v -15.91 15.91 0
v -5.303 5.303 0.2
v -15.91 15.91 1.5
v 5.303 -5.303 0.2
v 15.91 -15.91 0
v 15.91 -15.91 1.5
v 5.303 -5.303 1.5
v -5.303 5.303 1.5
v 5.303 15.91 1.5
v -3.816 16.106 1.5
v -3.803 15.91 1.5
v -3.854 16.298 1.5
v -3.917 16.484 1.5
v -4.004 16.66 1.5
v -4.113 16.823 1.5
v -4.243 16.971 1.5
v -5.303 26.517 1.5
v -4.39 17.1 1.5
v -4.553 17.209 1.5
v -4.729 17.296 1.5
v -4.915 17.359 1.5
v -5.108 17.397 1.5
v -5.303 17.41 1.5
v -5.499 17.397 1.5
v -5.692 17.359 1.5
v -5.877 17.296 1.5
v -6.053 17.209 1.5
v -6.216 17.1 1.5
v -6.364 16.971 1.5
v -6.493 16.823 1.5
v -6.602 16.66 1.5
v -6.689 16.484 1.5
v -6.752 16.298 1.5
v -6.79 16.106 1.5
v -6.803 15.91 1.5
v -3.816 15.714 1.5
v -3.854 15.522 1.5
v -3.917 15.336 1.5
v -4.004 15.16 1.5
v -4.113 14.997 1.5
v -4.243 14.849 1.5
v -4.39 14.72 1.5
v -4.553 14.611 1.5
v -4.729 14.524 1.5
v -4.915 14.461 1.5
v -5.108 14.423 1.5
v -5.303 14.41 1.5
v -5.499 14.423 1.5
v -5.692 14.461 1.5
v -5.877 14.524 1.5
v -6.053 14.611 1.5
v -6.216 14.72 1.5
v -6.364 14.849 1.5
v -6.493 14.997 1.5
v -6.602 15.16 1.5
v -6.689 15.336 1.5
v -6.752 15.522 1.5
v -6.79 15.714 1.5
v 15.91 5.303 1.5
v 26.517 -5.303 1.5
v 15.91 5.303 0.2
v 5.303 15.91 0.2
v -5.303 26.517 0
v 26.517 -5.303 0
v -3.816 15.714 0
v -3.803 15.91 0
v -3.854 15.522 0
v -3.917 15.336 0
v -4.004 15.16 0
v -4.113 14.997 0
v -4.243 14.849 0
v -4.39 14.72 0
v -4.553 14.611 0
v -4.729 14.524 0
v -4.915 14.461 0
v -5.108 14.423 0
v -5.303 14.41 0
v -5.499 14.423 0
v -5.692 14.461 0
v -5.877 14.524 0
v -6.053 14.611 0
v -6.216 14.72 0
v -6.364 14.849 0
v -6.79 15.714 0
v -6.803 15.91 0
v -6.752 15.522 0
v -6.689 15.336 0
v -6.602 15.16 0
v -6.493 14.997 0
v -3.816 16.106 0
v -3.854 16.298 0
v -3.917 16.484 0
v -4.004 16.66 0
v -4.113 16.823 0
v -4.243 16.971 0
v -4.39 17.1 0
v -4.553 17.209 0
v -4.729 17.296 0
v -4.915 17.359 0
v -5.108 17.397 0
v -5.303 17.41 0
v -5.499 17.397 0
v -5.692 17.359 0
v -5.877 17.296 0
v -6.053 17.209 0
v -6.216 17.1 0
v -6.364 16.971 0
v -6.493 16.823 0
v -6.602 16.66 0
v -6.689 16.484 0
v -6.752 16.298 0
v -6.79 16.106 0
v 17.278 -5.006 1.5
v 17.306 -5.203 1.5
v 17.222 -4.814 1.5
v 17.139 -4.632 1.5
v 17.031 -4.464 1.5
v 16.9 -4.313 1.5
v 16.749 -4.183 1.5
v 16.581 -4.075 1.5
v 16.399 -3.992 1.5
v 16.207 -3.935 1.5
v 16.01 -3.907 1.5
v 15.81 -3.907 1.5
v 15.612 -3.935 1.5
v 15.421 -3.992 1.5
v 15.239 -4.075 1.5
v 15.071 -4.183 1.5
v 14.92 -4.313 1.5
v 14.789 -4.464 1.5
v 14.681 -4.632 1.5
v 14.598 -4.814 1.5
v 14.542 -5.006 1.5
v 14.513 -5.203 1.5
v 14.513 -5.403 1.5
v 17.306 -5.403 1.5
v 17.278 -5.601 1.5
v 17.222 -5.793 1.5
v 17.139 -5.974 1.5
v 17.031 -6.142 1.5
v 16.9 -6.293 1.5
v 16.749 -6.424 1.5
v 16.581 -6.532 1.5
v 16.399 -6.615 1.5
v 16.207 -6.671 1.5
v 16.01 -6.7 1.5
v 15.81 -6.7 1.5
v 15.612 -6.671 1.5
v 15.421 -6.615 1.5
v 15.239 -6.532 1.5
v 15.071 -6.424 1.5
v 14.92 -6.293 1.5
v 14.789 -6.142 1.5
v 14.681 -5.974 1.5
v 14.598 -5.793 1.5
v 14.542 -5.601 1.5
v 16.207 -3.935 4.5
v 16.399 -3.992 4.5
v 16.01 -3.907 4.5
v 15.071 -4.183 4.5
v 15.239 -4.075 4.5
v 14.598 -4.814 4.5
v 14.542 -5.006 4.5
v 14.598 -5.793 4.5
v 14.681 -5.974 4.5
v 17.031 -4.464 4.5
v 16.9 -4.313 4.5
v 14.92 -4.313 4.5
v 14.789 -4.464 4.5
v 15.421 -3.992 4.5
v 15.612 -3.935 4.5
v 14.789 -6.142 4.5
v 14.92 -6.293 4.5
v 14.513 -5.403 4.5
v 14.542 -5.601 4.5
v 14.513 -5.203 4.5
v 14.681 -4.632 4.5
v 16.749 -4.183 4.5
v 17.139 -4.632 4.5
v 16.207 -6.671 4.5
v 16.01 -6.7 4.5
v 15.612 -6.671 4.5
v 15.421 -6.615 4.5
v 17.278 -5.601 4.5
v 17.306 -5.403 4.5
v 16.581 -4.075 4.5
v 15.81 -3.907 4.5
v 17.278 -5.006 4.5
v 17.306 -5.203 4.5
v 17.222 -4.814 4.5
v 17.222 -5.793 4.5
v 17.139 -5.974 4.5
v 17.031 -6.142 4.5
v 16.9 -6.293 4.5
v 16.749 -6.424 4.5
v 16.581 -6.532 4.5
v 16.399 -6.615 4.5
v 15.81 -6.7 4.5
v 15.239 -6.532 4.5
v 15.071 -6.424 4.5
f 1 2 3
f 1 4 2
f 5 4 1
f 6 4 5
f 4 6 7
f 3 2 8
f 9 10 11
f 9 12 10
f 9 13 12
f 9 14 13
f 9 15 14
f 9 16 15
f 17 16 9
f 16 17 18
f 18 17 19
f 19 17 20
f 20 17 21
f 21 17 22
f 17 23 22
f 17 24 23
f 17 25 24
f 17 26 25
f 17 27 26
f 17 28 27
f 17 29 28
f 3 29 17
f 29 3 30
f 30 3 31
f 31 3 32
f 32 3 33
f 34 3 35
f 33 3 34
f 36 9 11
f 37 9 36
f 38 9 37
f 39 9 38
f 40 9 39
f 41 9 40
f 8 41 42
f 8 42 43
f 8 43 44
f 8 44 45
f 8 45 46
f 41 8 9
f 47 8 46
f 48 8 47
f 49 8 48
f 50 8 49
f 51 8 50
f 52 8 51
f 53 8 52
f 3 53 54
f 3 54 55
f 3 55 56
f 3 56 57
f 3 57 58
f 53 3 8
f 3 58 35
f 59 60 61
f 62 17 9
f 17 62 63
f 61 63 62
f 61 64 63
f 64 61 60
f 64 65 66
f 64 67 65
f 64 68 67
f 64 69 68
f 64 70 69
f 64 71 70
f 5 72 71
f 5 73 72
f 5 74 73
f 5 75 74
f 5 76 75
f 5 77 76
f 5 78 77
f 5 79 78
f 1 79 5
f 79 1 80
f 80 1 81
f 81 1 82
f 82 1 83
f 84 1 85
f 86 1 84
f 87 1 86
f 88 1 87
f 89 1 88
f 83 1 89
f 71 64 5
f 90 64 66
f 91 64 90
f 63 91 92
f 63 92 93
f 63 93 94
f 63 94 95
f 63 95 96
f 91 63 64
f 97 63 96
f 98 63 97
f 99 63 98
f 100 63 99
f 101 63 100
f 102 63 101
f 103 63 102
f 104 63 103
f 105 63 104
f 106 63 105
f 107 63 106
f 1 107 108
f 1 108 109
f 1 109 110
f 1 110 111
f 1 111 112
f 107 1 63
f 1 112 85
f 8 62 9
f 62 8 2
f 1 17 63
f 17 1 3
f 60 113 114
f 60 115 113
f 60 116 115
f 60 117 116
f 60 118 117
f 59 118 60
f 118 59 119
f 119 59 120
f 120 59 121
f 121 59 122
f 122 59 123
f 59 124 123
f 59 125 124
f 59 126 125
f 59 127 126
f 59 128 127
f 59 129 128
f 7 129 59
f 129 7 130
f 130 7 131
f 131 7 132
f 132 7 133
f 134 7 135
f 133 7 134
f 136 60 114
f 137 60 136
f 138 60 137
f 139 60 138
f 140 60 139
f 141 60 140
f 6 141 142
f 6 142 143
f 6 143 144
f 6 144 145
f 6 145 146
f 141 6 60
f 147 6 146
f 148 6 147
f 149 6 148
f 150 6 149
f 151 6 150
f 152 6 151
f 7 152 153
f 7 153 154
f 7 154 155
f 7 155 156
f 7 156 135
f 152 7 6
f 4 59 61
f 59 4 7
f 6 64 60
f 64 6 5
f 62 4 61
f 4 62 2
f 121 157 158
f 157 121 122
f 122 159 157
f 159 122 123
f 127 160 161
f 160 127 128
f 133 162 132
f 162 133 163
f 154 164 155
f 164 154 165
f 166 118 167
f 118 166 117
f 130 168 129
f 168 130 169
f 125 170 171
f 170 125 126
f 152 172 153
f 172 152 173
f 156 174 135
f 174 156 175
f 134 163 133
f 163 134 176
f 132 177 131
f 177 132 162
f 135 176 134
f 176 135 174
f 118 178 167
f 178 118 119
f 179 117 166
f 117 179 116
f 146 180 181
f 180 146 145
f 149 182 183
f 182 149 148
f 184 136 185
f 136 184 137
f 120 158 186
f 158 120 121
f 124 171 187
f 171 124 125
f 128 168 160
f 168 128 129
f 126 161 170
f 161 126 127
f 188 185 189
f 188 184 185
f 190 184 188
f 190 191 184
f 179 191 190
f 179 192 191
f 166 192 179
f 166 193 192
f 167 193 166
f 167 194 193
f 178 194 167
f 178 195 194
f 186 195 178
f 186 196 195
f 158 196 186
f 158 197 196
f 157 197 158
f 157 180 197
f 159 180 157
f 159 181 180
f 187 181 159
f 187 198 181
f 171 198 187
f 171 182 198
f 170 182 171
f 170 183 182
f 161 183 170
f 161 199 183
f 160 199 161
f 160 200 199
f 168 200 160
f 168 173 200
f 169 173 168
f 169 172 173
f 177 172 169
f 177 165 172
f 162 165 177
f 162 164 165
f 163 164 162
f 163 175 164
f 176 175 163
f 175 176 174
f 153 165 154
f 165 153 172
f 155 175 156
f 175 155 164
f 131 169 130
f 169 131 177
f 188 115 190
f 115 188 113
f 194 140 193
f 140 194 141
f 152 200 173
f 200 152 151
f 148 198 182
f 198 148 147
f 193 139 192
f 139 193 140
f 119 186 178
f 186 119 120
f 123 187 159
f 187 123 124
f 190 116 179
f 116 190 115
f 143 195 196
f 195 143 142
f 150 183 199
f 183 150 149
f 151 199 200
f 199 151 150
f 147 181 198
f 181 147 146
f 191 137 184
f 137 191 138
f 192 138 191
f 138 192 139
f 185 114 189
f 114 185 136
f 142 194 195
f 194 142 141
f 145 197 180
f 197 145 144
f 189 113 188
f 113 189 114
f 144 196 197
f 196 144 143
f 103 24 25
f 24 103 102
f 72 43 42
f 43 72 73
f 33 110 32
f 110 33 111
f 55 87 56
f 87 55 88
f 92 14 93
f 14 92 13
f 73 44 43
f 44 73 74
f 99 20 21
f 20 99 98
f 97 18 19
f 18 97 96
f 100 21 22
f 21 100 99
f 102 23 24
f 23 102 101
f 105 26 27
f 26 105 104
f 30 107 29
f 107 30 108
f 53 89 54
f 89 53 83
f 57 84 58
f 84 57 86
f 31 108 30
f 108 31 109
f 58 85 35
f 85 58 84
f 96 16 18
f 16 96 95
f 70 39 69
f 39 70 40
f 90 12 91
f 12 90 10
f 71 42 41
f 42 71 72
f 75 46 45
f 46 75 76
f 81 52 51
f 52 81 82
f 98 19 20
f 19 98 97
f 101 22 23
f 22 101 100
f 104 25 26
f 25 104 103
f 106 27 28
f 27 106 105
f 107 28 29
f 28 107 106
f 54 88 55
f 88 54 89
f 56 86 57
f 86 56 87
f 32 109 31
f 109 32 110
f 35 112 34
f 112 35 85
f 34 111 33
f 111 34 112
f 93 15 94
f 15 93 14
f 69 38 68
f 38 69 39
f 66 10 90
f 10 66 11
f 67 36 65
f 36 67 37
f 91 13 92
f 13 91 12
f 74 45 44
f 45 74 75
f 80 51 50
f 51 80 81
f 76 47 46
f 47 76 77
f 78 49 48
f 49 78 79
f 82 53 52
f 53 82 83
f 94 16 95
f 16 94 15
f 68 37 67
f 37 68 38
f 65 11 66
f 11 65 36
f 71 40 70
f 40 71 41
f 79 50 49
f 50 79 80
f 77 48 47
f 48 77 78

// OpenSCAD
$fa = 4.0;
$fs = 0.2;

hole_diameter = 3;
punch_diameter = 2.8;
punch_height = 3;
base_height = 1.5;
base_side_length = 15;

connector_height = 0.2;
connector_width = 15;
rotate([0, 0, 45])
difference() {
    union() {
        translate(v = [0, connector_width/2, 0]) 
        cube([base_side_length, base_side_length, base_height]);

        translate(v = [0, -(base_side_length + connector_width/2), 0])
        cube([base_side_length, base_side_length, base_height]);

        translate(v = [0, -(base_side_length + connector_width/2), 0])
        cube([base_side_length, connector_width + 2*base_side_length, connector_height]);

        translate(v = [base_side_length/2, -(base_side_length/2 + connector_width/2), base_height])
        cylinder(h = punch_height, d = punch_diameter);
    }

    translate(v = [base_side_length/2, (base_side_length/2 + connector_width/2), -0.1])
    cylinder(h = 2*base_height, d = hole_diameter);
}
